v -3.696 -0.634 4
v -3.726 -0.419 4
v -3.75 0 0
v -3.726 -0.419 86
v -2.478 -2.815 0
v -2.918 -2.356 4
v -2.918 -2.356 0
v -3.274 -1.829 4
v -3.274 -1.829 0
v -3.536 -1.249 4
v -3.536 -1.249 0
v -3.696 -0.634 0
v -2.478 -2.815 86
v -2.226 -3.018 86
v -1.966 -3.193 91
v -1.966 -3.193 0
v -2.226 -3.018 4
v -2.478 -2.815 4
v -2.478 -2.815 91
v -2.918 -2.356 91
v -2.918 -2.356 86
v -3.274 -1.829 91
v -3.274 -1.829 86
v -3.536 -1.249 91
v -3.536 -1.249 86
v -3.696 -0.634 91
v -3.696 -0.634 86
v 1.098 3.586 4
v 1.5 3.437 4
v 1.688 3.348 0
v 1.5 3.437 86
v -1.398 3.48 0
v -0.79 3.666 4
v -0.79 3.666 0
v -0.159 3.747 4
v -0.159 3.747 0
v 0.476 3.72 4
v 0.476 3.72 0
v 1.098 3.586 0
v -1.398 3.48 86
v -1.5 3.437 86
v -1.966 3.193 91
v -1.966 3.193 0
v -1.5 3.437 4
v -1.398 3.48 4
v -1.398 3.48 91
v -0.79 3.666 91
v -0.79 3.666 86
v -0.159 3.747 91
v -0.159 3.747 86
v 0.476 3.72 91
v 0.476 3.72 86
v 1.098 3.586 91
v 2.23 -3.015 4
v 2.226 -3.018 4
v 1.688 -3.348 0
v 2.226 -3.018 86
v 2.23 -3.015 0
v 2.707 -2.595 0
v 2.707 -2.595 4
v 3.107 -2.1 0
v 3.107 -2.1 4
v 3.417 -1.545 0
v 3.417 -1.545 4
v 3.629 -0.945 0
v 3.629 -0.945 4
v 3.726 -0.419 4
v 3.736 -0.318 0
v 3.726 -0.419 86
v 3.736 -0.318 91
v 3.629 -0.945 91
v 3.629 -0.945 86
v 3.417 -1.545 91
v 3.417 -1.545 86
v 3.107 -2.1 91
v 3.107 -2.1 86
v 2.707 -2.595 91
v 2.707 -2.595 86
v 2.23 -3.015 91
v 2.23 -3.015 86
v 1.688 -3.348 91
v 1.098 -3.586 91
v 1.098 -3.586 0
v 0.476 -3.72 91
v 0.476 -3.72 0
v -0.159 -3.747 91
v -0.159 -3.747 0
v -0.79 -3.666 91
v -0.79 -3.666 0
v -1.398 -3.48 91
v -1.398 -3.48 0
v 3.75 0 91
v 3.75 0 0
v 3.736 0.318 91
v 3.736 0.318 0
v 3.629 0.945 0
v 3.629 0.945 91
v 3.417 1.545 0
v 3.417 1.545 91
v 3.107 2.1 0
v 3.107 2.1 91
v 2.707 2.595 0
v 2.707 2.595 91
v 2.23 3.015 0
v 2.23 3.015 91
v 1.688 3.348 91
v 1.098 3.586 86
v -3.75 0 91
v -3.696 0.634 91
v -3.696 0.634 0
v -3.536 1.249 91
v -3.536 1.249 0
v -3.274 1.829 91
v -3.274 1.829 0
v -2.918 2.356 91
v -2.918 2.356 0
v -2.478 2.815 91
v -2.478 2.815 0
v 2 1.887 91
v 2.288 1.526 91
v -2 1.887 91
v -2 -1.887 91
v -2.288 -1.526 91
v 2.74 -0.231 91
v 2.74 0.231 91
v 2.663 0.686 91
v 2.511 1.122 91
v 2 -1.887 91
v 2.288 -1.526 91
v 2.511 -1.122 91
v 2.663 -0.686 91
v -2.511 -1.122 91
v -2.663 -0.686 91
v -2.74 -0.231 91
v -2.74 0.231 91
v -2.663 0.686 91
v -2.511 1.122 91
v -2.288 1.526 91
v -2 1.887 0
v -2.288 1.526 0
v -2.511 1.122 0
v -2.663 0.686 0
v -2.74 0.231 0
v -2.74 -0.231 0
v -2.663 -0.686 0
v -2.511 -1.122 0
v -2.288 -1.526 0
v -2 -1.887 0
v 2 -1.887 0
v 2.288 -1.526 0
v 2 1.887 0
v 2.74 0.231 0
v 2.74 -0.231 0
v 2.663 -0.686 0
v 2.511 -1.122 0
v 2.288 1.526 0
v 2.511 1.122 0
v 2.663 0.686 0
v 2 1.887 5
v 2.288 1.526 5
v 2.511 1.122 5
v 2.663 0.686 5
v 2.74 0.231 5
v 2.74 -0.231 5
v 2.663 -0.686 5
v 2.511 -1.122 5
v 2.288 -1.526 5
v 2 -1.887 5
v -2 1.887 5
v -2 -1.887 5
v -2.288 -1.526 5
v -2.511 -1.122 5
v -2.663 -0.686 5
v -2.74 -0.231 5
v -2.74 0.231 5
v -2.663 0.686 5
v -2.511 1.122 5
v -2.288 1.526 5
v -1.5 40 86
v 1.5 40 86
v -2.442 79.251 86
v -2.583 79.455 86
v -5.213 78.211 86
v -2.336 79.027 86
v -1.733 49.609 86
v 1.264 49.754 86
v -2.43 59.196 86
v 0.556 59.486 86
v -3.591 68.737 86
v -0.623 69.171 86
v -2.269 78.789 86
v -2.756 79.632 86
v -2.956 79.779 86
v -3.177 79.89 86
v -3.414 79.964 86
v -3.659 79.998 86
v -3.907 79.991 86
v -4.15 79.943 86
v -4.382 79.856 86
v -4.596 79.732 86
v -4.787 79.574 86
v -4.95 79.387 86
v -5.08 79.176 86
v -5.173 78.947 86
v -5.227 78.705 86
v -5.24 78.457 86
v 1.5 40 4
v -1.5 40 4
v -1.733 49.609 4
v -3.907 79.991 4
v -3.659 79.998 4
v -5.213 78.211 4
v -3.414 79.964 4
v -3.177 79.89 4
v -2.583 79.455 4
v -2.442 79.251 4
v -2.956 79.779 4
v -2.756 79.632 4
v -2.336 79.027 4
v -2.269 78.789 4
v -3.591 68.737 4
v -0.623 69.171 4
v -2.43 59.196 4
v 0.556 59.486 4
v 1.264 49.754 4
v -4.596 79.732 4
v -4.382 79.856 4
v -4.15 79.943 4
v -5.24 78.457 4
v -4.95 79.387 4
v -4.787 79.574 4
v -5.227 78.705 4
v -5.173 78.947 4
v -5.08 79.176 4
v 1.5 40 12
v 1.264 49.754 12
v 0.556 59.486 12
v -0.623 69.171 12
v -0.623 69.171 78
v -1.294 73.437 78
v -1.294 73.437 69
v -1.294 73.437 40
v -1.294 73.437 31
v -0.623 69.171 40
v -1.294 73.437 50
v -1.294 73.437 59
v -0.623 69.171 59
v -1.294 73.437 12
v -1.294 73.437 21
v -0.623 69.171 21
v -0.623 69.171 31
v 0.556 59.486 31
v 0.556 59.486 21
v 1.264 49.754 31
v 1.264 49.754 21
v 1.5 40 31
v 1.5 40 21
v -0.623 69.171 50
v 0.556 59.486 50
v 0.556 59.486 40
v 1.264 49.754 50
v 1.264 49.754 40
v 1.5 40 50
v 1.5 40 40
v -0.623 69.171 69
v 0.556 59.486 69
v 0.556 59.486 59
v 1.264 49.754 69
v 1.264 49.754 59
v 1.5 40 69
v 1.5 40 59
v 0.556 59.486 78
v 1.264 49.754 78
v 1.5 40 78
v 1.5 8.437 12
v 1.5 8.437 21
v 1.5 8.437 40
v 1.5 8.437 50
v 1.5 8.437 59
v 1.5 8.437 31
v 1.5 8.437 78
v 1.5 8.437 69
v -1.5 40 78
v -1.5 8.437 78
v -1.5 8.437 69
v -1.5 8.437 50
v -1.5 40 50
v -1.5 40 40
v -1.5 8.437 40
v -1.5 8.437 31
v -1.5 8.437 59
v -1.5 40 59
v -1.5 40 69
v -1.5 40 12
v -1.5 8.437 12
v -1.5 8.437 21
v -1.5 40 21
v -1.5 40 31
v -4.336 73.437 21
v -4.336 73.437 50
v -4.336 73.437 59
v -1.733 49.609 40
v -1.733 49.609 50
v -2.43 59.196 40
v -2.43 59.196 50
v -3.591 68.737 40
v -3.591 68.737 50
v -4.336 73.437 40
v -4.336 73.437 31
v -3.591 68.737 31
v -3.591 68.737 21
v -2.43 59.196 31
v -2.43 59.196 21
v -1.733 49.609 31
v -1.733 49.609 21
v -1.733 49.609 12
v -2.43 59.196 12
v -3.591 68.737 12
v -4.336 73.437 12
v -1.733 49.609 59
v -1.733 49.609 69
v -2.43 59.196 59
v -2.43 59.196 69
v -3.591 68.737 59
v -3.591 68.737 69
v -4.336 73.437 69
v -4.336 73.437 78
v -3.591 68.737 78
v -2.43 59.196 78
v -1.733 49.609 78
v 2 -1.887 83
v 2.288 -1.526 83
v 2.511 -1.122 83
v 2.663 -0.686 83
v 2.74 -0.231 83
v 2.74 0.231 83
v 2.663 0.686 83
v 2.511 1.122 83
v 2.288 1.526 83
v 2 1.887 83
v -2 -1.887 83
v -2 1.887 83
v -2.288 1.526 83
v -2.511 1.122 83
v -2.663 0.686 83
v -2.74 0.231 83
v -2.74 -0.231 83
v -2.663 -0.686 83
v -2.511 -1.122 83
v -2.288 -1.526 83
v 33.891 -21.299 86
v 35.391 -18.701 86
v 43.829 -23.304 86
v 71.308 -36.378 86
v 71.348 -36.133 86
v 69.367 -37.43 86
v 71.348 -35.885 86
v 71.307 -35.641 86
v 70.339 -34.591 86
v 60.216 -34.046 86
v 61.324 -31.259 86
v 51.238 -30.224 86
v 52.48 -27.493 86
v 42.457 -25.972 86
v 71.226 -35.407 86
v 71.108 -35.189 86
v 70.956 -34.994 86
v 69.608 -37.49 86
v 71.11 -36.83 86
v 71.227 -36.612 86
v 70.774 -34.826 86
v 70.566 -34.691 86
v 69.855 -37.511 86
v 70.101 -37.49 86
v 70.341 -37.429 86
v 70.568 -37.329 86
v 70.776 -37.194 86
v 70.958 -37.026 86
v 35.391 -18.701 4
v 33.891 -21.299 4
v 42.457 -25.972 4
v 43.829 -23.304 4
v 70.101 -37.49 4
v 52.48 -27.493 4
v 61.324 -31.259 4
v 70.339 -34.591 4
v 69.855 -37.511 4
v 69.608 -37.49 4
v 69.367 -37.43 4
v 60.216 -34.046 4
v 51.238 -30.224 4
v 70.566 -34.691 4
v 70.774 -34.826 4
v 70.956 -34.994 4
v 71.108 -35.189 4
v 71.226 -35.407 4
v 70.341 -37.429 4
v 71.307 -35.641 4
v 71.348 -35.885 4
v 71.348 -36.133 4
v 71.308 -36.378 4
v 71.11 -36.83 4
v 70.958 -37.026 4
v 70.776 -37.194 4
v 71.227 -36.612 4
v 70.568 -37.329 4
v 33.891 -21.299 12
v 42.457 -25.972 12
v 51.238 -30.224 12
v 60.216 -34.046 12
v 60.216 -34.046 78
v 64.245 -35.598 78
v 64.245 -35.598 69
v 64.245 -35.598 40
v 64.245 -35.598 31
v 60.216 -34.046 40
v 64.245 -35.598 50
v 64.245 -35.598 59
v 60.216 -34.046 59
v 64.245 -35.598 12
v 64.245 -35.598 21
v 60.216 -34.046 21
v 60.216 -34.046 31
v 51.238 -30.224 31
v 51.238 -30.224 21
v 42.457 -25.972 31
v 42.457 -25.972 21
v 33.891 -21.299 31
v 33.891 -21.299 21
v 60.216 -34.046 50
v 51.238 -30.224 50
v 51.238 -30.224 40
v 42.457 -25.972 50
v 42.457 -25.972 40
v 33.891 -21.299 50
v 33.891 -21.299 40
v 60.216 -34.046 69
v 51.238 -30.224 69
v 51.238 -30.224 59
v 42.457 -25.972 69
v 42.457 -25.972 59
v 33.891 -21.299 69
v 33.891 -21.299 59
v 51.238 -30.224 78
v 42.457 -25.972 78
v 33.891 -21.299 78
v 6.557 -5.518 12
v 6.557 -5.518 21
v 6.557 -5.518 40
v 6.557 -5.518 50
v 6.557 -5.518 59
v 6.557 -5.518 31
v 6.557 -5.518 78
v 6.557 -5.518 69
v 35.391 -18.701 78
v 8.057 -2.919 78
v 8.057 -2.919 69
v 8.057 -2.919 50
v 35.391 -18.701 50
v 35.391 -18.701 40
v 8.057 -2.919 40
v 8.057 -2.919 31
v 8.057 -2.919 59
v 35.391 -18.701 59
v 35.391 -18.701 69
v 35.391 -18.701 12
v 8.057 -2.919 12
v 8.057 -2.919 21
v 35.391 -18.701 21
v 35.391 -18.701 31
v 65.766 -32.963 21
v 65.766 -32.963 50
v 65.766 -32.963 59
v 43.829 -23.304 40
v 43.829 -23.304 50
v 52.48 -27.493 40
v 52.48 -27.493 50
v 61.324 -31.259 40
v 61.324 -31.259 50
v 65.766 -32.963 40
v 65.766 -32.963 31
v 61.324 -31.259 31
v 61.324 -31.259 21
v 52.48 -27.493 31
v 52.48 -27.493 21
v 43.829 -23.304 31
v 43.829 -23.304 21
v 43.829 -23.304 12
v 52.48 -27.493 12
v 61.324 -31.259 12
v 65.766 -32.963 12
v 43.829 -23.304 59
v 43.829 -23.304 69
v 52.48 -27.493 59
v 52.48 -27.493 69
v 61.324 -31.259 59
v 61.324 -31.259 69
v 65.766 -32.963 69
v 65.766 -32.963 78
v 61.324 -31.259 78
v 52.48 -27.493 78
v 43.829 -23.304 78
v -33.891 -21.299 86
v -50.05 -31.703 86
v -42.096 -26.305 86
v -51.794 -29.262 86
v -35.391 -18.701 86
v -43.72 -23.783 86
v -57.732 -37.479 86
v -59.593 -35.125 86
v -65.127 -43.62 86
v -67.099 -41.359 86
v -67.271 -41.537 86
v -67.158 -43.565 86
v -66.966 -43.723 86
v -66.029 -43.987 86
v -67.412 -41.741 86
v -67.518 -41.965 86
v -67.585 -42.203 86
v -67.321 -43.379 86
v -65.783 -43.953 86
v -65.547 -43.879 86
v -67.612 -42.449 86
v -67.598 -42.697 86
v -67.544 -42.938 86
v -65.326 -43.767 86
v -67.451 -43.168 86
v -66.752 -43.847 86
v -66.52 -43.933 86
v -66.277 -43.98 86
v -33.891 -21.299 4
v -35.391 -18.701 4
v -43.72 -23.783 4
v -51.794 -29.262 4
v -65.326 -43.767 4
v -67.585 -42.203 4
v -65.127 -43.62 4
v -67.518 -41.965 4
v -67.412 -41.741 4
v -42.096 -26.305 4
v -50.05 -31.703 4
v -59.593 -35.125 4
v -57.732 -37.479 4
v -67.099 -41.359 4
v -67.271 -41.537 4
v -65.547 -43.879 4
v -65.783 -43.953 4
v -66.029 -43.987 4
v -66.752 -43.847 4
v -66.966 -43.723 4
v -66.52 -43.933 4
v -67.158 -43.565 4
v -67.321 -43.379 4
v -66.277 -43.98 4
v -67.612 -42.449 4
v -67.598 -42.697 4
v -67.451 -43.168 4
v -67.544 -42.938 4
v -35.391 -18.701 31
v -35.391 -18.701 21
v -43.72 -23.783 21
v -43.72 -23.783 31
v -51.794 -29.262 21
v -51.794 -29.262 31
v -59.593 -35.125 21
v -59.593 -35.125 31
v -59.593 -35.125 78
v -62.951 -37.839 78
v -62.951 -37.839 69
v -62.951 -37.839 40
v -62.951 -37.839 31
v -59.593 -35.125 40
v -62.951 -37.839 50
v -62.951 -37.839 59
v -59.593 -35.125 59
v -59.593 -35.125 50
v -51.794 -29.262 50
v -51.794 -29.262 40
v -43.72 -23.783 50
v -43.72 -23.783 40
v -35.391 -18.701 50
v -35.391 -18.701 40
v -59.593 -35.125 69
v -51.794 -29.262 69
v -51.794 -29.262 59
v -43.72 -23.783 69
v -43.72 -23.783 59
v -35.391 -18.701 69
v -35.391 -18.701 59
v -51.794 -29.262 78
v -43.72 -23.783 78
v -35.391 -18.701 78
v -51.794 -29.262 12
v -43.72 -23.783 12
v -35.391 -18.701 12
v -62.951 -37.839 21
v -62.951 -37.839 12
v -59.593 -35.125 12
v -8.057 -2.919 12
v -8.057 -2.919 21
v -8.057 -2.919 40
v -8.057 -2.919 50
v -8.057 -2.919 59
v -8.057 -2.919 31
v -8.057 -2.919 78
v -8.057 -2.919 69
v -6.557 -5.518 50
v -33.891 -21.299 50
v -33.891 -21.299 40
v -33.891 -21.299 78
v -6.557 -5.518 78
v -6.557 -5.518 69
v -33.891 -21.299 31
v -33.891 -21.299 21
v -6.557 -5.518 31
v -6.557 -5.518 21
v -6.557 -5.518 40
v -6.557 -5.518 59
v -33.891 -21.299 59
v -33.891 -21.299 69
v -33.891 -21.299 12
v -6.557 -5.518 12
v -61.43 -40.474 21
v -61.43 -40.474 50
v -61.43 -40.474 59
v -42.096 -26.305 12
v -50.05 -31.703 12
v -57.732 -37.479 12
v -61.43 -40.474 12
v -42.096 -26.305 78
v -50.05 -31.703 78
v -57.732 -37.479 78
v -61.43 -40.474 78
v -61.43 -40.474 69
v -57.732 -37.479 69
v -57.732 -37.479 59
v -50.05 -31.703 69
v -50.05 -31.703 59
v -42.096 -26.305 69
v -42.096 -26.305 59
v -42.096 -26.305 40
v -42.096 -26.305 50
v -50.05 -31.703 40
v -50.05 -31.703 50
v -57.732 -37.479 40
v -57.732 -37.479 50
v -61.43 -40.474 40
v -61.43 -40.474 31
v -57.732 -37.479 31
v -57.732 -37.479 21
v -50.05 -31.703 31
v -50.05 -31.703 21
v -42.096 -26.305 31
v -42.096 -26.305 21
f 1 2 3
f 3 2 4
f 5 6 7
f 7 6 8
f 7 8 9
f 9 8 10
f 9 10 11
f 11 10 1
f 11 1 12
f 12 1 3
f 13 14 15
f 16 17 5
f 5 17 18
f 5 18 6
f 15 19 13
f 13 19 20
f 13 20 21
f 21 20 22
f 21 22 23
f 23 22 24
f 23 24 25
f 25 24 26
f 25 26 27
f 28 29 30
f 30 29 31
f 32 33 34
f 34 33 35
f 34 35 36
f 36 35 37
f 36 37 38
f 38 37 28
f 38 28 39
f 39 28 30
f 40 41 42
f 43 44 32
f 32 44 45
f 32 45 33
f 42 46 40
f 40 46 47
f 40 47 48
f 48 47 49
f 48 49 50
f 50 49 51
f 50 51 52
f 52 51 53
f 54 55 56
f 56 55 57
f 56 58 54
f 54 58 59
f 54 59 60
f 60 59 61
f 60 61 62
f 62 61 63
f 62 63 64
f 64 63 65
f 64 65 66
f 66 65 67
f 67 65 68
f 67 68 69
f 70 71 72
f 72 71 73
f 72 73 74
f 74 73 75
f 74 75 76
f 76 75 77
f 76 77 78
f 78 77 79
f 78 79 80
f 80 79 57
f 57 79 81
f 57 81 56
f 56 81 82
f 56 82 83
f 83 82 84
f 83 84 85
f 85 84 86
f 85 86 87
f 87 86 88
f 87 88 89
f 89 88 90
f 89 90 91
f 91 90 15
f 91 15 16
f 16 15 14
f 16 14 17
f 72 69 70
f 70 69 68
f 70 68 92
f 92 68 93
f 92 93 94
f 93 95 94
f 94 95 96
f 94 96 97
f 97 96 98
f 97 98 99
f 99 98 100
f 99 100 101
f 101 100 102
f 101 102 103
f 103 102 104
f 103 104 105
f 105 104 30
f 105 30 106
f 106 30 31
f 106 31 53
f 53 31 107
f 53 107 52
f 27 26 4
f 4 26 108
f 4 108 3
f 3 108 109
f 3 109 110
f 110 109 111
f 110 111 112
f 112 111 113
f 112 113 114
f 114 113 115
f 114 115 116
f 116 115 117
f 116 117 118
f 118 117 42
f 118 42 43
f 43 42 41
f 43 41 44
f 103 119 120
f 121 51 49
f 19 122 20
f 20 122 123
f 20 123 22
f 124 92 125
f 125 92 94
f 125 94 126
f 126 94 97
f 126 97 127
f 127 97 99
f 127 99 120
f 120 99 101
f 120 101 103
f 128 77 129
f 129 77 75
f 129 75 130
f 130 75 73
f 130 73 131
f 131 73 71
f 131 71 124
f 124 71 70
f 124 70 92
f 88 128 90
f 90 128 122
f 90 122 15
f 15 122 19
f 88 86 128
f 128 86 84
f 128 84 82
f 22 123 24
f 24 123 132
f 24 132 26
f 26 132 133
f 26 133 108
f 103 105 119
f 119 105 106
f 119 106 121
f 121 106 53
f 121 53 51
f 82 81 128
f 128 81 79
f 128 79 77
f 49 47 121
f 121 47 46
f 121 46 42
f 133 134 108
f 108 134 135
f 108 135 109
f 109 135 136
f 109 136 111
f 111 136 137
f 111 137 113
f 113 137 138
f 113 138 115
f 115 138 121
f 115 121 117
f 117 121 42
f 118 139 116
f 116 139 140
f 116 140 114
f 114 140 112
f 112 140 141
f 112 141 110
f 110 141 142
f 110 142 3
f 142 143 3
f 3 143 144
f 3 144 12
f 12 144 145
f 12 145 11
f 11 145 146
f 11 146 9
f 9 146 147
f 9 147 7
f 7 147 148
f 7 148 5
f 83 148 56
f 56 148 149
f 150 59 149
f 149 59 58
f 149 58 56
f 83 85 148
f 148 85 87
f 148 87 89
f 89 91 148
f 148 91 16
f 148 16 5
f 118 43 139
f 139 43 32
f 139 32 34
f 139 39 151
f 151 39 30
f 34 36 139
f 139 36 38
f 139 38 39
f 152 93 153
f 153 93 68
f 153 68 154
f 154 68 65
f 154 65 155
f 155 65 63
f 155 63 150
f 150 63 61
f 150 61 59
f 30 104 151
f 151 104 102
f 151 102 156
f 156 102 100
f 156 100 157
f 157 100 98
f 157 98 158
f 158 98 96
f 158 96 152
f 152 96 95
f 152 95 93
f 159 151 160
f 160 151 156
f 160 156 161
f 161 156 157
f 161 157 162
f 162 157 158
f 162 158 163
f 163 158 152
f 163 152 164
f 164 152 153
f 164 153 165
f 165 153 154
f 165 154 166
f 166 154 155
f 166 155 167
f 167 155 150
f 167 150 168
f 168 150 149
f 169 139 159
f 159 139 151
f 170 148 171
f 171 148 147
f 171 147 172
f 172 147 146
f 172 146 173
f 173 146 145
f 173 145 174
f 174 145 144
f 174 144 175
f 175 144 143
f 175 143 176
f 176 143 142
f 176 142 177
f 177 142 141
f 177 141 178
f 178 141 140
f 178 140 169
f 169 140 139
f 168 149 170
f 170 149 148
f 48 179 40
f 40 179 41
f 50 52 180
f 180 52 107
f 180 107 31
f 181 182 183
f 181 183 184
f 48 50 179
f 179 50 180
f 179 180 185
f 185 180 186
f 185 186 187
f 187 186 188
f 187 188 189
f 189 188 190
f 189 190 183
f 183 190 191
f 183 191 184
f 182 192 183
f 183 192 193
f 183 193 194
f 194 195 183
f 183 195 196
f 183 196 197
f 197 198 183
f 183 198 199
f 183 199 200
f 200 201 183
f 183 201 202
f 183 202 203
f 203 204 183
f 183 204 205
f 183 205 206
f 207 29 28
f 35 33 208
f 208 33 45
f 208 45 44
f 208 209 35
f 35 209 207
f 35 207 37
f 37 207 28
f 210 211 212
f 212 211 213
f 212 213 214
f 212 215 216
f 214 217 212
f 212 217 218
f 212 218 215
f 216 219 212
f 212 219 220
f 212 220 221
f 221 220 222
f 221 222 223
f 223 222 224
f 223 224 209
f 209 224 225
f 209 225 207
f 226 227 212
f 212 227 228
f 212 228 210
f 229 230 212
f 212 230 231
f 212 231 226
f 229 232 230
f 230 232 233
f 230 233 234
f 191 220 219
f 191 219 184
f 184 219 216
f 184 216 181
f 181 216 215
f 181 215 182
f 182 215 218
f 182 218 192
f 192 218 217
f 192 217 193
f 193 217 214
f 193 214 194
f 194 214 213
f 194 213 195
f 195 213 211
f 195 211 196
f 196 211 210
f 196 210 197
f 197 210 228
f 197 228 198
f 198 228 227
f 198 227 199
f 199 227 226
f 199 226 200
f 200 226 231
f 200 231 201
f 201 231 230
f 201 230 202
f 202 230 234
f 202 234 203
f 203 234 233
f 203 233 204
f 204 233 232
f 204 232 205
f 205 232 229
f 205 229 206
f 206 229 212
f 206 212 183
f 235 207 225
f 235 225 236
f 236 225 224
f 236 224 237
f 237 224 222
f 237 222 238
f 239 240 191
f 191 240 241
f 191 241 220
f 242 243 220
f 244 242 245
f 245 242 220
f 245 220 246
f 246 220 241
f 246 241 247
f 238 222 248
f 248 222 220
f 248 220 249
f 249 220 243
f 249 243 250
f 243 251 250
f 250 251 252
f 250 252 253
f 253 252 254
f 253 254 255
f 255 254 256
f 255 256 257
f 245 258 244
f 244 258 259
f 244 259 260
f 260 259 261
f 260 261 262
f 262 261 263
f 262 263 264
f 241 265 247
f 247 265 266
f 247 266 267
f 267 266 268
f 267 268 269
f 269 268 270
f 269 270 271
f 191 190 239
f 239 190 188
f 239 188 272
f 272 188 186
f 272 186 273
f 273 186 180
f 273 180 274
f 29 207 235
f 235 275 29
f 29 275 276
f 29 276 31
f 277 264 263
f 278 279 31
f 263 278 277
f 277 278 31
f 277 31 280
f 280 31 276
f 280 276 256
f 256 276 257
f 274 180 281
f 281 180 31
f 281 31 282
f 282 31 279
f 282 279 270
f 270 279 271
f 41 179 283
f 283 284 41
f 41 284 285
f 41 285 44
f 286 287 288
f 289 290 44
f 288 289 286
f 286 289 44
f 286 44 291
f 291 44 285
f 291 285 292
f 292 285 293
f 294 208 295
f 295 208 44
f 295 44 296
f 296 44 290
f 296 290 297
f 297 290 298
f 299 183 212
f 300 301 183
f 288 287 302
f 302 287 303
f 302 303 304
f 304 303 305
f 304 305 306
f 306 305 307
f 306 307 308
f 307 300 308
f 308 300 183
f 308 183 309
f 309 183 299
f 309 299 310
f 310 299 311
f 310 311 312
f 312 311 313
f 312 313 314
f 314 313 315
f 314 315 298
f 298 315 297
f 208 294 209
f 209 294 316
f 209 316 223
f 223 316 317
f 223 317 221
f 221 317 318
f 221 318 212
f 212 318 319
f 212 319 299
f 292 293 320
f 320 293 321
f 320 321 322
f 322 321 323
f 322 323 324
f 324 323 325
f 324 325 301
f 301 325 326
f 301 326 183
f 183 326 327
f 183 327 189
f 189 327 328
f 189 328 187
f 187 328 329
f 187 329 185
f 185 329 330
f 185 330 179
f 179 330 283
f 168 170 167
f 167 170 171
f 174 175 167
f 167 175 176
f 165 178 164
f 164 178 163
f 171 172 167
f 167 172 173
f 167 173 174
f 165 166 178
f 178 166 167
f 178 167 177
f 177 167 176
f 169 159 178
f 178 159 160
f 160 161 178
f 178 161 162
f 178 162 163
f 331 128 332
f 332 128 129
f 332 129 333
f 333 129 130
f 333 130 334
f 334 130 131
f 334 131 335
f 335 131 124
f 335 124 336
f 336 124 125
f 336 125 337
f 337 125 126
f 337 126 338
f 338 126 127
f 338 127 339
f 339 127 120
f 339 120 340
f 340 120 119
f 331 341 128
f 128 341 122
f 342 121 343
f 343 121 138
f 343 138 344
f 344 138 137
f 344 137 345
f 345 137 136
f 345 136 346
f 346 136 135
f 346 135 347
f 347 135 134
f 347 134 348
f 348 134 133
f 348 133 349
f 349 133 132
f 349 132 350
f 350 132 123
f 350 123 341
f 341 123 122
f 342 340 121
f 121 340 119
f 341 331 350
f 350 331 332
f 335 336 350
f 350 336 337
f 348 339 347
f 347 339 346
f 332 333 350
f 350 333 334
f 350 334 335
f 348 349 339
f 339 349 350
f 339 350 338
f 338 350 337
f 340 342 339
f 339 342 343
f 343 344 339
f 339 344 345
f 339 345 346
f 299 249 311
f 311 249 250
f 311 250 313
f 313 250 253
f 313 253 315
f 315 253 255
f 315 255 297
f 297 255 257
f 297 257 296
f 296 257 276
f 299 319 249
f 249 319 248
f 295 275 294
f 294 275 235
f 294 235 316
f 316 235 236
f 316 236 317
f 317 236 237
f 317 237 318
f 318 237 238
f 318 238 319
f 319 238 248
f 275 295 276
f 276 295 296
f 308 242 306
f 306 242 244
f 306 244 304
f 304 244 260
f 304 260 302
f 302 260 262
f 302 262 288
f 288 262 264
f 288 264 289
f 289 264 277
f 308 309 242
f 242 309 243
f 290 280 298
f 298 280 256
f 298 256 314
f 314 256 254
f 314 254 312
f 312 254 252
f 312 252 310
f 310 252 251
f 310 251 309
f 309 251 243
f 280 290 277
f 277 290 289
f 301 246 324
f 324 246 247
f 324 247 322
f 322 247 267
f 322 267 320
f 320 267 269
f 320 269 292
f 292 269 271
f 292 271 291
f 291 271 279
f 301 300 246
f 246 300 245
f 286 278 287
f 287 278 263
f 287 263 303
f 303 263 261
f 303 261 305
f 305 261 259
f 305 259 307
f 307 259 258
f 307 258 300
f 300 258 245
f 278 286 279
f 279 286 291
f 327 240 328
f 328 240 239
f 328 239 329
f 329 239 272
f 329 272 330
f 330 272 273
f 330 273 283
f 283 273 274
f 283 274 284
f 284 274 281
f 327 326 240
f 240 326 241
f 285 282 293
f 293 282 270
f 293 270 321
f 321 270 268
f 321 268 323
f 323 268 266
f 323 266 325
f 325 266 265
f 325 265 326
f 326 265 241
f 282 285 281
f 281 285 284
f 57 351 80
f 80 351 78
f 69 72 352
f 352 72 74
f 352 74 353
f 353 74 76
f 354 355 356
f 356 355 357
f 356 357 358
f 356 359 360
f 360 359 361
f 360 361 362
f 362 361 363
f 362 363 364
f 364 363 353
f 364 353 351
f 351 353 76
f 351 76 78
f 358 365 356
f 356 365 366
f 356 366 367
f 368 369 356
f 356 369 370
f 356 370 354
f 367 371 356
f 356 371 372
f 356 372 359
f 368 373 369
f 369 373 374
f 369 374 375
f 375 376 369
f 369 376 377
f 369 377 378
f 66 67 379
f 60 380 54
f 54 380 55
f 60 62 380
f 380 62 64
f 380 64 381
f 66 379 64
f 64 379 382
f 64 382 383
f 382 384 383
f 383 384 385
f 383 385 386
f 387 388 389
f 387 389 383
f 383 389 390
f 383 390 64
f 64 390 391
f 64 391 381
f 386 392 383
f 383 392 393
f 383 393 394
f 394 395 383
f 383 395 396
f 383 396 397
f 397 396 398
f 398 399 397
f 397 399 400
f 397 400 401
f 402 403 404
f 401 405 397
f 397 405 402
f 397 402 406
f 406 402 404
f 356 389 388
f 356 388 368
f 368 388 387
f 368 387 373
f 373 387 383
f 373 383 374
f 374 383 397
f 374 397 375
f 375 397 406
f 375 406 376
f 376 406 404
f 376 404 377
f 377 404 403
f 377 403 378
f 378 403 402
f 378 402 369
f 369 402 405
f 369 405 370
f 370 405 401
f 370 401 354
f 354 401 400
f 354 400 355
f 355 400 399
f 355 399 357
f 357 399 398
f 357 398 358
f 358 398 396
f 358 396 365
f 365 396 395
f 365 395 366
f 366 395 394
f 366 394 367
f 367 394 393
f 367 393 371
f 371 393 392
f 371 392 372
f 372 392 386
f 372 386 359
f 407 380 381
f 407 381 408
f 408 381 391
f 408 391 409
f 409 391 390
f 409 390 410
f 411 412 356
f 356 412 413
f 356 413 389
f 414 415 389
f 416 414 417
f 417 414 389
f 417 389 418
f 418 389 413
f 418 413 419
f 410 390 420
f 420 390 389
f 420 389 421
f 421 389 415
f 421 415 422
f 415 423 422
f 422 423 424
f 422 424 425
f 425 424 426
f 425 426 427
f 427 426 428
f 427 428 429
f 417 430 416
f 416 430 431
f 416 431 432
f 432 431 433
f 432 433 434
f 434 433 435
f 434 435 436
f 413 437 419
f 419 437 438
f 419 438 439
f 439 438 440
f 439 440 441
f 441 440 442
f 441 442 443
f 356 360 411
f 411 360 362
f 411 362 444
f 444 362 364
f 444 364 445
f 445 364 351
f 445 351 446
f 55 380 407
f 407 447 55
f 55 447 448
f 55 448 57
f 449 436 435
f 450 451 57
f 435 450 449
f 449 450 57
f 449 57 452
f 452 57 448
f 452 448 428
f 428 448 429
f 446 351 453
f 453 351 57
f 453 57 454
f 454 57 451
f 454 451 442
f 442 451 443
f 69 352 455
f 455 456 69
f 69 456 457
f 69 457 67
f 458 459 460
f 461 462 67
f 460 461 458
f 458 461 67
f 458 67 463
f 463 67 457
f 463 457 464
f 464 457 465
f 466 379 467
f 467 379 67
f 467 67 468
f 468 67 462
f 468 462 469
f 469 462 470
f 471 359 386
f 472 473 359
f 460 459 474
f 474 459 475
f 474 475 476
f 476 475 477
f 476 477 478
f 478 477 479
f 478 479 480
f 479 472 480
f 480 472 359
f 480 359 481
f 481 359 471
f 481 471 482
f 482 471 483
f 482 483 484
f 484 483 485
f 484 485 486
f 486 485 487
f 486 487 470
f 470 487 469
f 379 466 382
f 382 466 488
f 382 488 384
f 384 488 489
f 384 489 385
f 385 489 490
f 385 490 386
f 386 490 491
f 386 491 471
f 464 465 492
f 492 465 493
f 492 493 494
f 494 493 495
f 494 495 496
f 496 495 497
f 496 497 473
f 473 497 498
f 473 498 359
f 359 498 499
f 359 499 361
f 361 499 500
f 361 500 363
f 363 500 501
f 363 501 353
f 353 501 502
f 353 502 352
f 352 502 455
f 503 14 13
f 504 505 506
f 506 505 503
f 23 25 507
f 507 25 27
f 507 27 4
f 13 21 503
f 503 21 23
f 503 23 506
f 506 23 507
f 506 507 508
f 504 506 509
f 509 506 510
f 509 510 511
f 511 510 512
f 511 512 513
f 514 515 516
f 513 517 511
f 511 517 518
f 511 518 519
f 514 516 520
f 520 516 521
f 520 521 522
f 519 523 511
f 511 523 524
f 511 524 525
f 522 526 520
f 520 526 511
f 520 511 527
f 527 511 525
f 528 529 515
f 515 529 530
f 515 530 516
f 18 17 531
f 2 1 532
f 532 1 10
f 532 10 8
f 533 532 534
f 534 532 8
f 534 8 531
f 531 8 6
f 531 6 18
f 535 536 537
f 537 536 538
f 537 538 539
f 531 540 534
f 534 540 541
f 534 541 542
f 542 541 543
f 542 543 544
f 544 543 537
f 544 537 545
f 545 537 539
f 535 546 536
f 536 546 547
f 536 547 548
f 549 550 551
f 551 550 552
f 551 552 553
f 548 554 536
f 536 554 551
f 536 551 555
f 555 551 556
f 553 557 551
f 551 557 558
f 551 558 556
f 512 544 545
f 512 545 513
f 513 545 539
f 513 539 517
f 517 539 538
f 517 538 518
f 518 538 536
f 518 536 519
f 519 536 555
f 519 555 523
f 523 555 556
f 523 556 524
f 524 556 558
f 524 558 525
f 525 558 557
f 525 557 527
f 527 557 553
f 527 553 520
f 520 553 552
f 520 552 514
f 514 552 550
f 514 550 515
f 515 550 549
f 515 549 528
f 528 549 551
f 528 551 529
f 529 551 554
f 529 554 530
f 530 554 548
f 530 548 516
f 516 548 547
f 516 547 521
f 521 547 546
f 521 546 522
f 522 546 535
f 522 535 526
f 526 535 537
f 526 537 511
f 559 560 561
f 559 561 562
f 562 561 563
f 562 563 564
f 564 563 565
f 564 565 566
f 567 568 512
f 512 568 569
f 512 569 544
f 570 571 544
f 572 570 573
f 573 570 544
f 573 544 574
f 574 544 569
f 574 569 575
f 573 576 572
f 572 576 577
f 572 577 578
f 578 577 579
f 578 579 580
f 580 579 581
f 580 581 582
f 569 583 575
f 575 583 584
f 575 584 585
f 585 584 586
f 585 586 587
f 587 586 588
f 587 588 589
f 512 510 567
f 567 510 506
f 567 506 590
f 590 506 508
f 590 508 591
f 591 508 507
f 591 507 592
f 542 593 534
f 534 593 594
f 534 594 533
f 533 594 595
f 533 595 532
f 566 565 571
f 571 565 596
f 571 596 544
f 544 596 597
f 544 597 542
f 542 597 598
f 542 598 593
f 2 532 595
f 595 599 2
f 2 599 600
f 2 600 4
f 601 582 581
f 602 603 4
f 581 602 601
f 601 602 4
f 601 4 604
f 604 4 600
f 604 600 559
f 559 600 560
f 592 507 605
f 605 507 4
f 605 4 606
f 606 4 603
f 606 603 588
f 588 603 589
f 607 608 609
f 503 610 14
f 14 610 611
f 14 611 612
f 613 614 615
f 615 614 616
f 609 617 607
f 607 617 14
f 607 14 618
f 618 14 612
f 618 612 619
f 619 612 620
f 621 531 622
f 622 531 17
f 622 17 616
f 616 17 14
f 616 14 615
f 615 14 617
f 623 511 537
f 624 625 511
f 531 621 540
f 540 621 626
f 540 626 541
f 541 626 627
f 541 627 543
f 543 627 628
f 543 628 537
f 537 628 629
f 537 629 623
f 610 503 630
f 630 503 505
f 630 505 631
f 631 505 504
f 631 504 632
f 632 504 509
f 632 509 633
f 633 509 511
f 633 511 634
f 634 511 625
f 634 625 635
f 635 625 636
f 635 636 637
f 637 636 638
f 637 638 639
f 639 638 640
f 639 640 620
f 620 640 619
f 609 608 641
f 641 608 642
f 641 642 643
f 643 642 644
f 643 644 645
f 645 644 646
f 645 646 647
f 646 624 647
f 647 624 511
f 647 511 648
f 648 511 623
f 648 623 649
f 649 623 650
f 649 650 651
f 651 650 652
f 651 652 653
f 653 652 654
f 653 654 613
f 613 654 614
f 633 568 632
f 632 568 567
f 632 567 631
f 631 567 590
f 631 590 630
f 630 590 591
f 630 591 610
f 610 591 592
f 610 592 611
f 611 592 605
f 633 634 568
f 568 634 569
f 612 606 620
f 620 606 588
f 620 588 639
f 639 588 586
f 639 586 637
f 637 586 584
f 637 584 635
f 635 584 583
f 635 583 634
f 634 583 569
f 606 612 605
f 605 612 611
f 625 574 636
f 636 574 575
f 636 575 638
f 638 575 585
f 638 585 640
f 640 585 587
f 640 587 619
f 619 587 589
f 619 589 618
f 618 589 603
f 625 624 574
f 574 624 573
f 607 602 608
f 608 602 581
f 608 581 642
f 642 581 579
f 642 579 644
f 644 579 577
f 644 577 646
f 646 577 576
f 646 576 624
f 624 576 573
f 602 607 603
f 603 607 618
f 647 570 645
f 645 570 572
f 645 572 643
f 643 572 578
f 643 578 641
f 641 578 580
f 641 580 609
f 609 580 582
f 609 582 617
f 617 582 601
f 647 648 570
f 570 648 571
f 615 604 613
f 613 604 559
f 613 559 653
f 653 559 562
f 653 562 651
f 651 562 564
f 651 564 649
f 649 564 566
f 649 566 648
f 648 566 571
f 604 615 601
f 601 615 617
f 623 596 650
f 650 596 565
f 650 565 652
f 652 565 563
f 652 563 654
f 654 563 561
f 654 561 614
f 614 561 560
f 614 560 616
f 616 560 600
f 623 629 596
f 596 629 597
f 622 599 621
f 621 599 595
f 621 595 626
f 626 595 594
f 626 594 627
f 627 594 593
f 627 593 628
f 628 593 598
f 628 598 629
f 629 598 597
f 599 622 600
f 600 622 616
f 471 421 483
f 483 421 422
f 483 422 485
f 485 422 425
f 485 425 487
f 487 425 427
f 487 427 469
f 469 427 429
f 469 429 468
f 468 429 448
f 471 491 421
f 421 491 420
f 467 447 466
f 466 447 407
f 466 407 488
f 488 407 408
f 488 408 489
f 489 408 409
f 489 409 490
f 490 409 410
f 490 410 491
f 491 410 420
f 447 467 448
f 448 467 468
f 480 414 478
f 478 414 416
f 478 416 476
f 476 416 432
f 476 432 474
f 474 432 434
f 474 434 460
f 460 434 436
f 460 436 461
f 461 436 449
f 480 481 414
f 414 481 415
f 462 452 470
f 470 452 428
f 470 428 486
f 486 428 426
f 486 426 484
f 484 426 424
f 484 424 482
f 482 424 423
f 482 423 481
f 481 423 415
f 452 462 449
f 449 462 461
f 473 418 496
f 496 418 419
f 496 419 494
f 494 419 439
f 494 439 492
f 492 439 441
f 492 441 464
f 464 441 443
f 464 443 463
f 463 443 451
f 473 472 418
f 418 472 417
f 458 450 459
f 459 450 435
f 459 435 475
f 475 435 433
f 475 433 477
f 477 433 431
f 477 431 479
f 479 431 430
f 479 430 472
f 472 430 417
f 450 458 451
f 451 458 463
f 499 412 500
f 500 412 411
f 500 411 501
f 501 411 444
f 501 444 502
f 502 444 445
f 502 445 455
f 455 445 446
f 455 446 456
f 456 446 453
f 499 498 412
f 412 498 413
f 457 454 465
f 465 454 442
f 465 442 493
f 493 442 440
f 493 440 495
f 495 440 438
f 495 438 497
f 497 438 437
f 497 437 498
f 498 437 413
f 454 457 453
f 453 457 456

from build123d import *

# Parameters (mm, degrees)
SKETCH_1_R               = 3.75
EXTRUDE_1_DEPTH          = 91
CUT_EXTRUDE_1_DEPTH      = 9
SKETCH_4_R               = 2.5
EXTRUDE_2_DEPTH          = 6
EXTRUDE_START            = -4
EXTRUDE_3_DEPTH          = 82
SKETCH_10_R              = 2.5
EXTRUDE_4_DEPTH          = 2
EXTRUDE_START_2          = 3
EXTRUDE_5_DEPTH          = 3
EXTRUDE_START_3          = 1.5
EXTRUDE_6_DEPTH          = 1.5
CUT_EXTRUDE_4_DEPTH      = 0.5
CUT_EXTRUDE_START        = -8
SKETCH_14_R              = 2.5
CUT_EXTRUDE_5_DEPTH      = 8
CUT_EXTRUDE_9_DEPTH      = 8
CUT_EXTRUDE_10_REACH     = 123.353
SKETCH_16_W              = 9
SKETCH_16_H              = 65
PATTERN_CIRCULAR_1_COUNT = 3
PATTERN_CIRCULAR_2_COUNT = 3


with BuildPart() as part:
    # 草图1 → 凸台-拉伸1 (new body)
    with BuildSketch(Plane.XY):
        Circle(SKETCH_1_R)
    extrude(amount=EXTRUDE_1_DEPTH)

    # 草图2 → 切除-拉伸1 (cut)
    with BuildSketch(Plane(origin=(0, 0, 0), x_dir=(-1, 0, 0), z_dir=(0, 0, -1))):
        with BuildLine():
            Line((-2, 1.887458609), (2, 1.887458609))
            ThreePointArc((2, 1.887458609), (2.75, 0), (2, -1.887458609))
            Line((2, -1.887458609), (-2, -1.887458609))
            ThreePointArc((-2, -1.887458609), (-2.75, 0), (-2, 1.887458609))
        make_face()
    extrude(amount=-CUT_EXTRUDE_1_DEPTH, mode=Mode.SUBTRACT)

    # 草图4 → 凸台-拉伸2 (add)
    with BuildSketch(Plane.XY.offset(91)):
        Circle(SKETCH_4_R)
    extrude(amount=EXTRUDE_2_DEPTH)

    # 草图7 → 凸台-拉伸3 (add)
    with BuildSketch(Plane(origin=(0, 0, 0), x_dir=(-1, 0, 0), z_dir=(0, 0, -1)).offset(EXTRUDE_START)):
        with BuildLine():
            ThreePointArc((-1.5, 3.436931771), (-0.766161164, 3.670898673), (0, 3.75))
            ThreePointArc((0, 3.75), (0.766161164, 3.670898673), (1.5, 3.436931771))
            Line((1.5, 3.436931771), (1.5, 40))
            ThreePointArc((1.5, 40), (2.430132962, 59.193687469), (5.211814999, 78.207499055))
            ThreePointArc((5.211814999, 78.207499055), (5.212182881, 78.20937453), (5.212550781, 78.21125))
            ThreePointArc((5.212550781, 78.21125), (4.02935532, 79.97194546), (2.26865986, 78.78875))
            ThreePointArc((2.26865986, 78.78875), (-0.555622008, 59.485699395), (-1.5, 40))
            Line((-1.5, 40), (-1.5, 3.436931771))
        make_face()
    extrude_3 = extrude(amount=-EXTRUDE_3_DEPTH)

    # 草图10 → 凸台-拉伸4 (add)
    with BuildSketch(Plane.XY.offset(97)):
        Circle(SKETCH_10_R)
    extrude(amount=EXTRUDE_4_DEPTH)

    # 草图11 → 凸台-拉伸5 (add)
    with BuildSketch(Plane(origin=(0, 0, 9), x_dir=(-1, 0, 0), z_dir=(0, 0, -1)).offset(EXTRUDE_START_2)):
        with BuildLine():
            Line((-2, -1.887458609), (2, -1.887458609))
            ThreePointArc((2, -1.887458609), (2.75, 0), (2, 1.887458609))
            Line((2, 1.887458609), (-2, 1.887458609))
            ThreePointArc((-2, 1.887458609), (-2.75, 0), (-2, -1.887458609))
        make_face()
    extrude(amount=-EXTRUDE_5_DEPTH)

    # 草图12 → 凸台-拉伸6 (add)
    with BuildSketch(Plane(origin=(0, 0, 6), x_dir=(-1, 0, 0), z_dir=(0, 0, -1)).offset(EXTRUDE_START_3)):
        with BuildLine():
            Line((-2, -1.887458609), (2, -1.887458609))
            ThreePointArc((2, -1.887458609), (2.75, 0), (2, 1.887458609))
            Line((2, 1.887458609), (-2, 1.887458609))
            ThreePointArc((-2, 1.887458609), (-2.75, 0), (-2, -1.887458609))
        make_face()
    extrude(amount=-EXTRUDE_6_DEPTH)

    # 草图13 → 切除-拉伸4 (cut)
    with BuildSketch(Plane(origin=(0, 0, 4.5), x_dir=(-1, 0, 0), z_dir=(0, 0, -1))):
        with BuildLine():
            Line((-2, -1.887458609), (2, -1.887458609))
            ThreePointArc((2, -1.887458609), (2.75, 0), (2, 1.887458609))
            Line((2, 1.887458609), (-2, 1.887458609))
            ThreePointArc((-2, 1.887458609), (-2.75, 0), (-2, -1.887458609))
        make_face()
    extrude(amount=-CUT_EXTRUDE_4_DEPTH, mode=Mode.SUBTRACT)

    # 草图14 → 切除-拉伸5 (cut)
    with BuildSketch(Plane.XY.offset(99).offset(CUT_EXTRUDE_START)):
        Circle(SKETCH_14_R)
    extrude(amount=CUT_EXTRUDE_5_DEPTH, mode=Mode.SUBTRACT)

    # 草图15 → 切除-拉伸9 (cut)
    with BuildSketch(Plane.XY.offset(91).offset(CUT_EXTRUDE_START)):
        with BuildLine():
            Line((-2, -1.887458609), (2, -1.887458609))
            ThreePointArc((2, -1.887458609), (2.75, 0), (2, 1.887458609))
            Line((2, 1.887458609), (-2, 1.887458609))
            ThreePointArc((-2, 1.887458609), (-2.75, 0), (-2, -1.887458609))
        make_face()
    extrude(amount=CUT_EXTRUDE_9_DEPTH, mode=Mode.SUBTRACT)

    # 草图16 → 切除-拉伸10 (cut, up to next)
    with BuildSketch(Plane(origin=(1.5, 0, 0), x_dir=(0, 0, -1), z_dir=(1, 0, 0)), mode=Mode.PRIVATE) as cut_extrude_10_sk1:
        with Locations((-73.5, 40.936931771)):
            Rectangle(SKETCH_16_W, SKETCH_16_H)
    cut_extrude_10_tool1 = extrude(cut_extrude_10_sk1.sketch, amount=-CUT_EXTRUDE_10_REACH, mode=Mode.PRIVATE) & part.part
    # 草图16 → 切除-拉伸10 (cut, up to next)
    with BuildSketch(Plane(origin=(1.5, 0, 0), x_dir=(0, 0, -1), z_dir=(1, 0, 0)), mode=Mode.PRIVATE) as cut_extrude_10_sk2:
        with Locations((-54.5, 40.936931771)):
            Rectangle(SKETCH_16_W, SKETCH_16_H)
    cut_extrude_10_tool2 = extrude(cut_extrude_10_sk2.sketch, amount=-CUT_EXTRUDE_10_REACH, mode=Mode.PRIVATE) & part.part
    # 草图16 → 切除-拉伸10 (cut, up to next)
    with BuildSketch(Plane(origin=(1.5, 0, 0), x_dir=(0, 0, -1), z_dir=(1, 0, 0)), mode=Mode.PRIVATE) as cut_extrude_10_sk3:
        with Locations((-35.5, 40.936931771)):
            Rectangle(SKETCH_16_W, SKETCH_16_H)
    cut_extrude_10_tool3 = extrude(cut_extrude_10_sk3.sketch, amount=-CUT_EXTRUDE_10_REACH, mode=Mode.PRIVATE) & part.part
    # 草图16 → 切除-拉伸10 (cut, up to next)
    with BuildSketch(Plane(origin=(1.5, 0, 0), x_dir=(0, 0, -1), z_dir=(1, 0, 0)), mode=Mode.PRIVATE) as cut_extrude_10_sk4:
        with Locations((-16.5, 40.936931771)):
            Rectangle(SKETCH_16_W, SKETCH_16_H)
    cut_extrude_10_tool4 = extrude(cut_extrude_10_sk4.sketch, amount=-CUT_EXTRUDE_10_REACH, mode=Mode.PRIVATE) & part.part
    cut_extrude_10_1 = cut_extrude_10_tool1.solids().sort_by_distance((1.5, 40.936932, 73.5))[0]
    add(cut_extrude_10_1, mode=Mode.SUBTRACT)
    cut_extrude_10_2 = cut_extrude_10_tool2.solids().sort_by_distance((1.5, 40.936932, 54.5))[0]
    add(cut_extrude_10_2, mode=Mode.SUBTRACT)
    cut_extrude_10_3 = cut_extrude_10_tool3.solids().sort_by_distance((1.5, 40.936932, 35.5))[0]
    add(cut_extrude_10_3, mode=Mode.SUBTRACT)
    cut_extrude_10_4 = cut_extrude_10_tool4.solids().sort_by_distance((1.5, 40.936932, 16.5))[0]
    add(cut_extrude_10_4, mode=Mode.SUBTRACT)
    cut_extrude_10 = cut_extrude_10_1 + cut_extrude_10_2 + cut_extrude_10_3 + cut_extrude_10_4  # 切除-拉伸10 as one shape, for the pattern or mirror that repeats it

    # 阵列(圆周)1: 凸台-拉伸3 ×3 about axis
    pattern_circular_1_axis = Axis((0, 0, 0), (0, 0, 1))
    for i in range(1, PATTERN_CIRCULAR_1_COUNT):
        add(extrude_3.rotate(pattern_circular_1_axis, i * 360 / PATTERN_CIRCULAR_1_COUNT))

    # 阵列(圆周)2: 切除-拉伸10 ×3 about axis
    pattern_circular_2_axis = Axis((0, 0, 0), (0, 0, 1))
    for i in range(1, PATTERN_CIRCULAR_2_COUNT):
        add(cut_extrude_10.rotate(pattern_circular_2_axis, i * 360 / PATTERN_CIRCULAR_2_COUNT), mode=Mode.SUBTRACT)


solid = part.part
